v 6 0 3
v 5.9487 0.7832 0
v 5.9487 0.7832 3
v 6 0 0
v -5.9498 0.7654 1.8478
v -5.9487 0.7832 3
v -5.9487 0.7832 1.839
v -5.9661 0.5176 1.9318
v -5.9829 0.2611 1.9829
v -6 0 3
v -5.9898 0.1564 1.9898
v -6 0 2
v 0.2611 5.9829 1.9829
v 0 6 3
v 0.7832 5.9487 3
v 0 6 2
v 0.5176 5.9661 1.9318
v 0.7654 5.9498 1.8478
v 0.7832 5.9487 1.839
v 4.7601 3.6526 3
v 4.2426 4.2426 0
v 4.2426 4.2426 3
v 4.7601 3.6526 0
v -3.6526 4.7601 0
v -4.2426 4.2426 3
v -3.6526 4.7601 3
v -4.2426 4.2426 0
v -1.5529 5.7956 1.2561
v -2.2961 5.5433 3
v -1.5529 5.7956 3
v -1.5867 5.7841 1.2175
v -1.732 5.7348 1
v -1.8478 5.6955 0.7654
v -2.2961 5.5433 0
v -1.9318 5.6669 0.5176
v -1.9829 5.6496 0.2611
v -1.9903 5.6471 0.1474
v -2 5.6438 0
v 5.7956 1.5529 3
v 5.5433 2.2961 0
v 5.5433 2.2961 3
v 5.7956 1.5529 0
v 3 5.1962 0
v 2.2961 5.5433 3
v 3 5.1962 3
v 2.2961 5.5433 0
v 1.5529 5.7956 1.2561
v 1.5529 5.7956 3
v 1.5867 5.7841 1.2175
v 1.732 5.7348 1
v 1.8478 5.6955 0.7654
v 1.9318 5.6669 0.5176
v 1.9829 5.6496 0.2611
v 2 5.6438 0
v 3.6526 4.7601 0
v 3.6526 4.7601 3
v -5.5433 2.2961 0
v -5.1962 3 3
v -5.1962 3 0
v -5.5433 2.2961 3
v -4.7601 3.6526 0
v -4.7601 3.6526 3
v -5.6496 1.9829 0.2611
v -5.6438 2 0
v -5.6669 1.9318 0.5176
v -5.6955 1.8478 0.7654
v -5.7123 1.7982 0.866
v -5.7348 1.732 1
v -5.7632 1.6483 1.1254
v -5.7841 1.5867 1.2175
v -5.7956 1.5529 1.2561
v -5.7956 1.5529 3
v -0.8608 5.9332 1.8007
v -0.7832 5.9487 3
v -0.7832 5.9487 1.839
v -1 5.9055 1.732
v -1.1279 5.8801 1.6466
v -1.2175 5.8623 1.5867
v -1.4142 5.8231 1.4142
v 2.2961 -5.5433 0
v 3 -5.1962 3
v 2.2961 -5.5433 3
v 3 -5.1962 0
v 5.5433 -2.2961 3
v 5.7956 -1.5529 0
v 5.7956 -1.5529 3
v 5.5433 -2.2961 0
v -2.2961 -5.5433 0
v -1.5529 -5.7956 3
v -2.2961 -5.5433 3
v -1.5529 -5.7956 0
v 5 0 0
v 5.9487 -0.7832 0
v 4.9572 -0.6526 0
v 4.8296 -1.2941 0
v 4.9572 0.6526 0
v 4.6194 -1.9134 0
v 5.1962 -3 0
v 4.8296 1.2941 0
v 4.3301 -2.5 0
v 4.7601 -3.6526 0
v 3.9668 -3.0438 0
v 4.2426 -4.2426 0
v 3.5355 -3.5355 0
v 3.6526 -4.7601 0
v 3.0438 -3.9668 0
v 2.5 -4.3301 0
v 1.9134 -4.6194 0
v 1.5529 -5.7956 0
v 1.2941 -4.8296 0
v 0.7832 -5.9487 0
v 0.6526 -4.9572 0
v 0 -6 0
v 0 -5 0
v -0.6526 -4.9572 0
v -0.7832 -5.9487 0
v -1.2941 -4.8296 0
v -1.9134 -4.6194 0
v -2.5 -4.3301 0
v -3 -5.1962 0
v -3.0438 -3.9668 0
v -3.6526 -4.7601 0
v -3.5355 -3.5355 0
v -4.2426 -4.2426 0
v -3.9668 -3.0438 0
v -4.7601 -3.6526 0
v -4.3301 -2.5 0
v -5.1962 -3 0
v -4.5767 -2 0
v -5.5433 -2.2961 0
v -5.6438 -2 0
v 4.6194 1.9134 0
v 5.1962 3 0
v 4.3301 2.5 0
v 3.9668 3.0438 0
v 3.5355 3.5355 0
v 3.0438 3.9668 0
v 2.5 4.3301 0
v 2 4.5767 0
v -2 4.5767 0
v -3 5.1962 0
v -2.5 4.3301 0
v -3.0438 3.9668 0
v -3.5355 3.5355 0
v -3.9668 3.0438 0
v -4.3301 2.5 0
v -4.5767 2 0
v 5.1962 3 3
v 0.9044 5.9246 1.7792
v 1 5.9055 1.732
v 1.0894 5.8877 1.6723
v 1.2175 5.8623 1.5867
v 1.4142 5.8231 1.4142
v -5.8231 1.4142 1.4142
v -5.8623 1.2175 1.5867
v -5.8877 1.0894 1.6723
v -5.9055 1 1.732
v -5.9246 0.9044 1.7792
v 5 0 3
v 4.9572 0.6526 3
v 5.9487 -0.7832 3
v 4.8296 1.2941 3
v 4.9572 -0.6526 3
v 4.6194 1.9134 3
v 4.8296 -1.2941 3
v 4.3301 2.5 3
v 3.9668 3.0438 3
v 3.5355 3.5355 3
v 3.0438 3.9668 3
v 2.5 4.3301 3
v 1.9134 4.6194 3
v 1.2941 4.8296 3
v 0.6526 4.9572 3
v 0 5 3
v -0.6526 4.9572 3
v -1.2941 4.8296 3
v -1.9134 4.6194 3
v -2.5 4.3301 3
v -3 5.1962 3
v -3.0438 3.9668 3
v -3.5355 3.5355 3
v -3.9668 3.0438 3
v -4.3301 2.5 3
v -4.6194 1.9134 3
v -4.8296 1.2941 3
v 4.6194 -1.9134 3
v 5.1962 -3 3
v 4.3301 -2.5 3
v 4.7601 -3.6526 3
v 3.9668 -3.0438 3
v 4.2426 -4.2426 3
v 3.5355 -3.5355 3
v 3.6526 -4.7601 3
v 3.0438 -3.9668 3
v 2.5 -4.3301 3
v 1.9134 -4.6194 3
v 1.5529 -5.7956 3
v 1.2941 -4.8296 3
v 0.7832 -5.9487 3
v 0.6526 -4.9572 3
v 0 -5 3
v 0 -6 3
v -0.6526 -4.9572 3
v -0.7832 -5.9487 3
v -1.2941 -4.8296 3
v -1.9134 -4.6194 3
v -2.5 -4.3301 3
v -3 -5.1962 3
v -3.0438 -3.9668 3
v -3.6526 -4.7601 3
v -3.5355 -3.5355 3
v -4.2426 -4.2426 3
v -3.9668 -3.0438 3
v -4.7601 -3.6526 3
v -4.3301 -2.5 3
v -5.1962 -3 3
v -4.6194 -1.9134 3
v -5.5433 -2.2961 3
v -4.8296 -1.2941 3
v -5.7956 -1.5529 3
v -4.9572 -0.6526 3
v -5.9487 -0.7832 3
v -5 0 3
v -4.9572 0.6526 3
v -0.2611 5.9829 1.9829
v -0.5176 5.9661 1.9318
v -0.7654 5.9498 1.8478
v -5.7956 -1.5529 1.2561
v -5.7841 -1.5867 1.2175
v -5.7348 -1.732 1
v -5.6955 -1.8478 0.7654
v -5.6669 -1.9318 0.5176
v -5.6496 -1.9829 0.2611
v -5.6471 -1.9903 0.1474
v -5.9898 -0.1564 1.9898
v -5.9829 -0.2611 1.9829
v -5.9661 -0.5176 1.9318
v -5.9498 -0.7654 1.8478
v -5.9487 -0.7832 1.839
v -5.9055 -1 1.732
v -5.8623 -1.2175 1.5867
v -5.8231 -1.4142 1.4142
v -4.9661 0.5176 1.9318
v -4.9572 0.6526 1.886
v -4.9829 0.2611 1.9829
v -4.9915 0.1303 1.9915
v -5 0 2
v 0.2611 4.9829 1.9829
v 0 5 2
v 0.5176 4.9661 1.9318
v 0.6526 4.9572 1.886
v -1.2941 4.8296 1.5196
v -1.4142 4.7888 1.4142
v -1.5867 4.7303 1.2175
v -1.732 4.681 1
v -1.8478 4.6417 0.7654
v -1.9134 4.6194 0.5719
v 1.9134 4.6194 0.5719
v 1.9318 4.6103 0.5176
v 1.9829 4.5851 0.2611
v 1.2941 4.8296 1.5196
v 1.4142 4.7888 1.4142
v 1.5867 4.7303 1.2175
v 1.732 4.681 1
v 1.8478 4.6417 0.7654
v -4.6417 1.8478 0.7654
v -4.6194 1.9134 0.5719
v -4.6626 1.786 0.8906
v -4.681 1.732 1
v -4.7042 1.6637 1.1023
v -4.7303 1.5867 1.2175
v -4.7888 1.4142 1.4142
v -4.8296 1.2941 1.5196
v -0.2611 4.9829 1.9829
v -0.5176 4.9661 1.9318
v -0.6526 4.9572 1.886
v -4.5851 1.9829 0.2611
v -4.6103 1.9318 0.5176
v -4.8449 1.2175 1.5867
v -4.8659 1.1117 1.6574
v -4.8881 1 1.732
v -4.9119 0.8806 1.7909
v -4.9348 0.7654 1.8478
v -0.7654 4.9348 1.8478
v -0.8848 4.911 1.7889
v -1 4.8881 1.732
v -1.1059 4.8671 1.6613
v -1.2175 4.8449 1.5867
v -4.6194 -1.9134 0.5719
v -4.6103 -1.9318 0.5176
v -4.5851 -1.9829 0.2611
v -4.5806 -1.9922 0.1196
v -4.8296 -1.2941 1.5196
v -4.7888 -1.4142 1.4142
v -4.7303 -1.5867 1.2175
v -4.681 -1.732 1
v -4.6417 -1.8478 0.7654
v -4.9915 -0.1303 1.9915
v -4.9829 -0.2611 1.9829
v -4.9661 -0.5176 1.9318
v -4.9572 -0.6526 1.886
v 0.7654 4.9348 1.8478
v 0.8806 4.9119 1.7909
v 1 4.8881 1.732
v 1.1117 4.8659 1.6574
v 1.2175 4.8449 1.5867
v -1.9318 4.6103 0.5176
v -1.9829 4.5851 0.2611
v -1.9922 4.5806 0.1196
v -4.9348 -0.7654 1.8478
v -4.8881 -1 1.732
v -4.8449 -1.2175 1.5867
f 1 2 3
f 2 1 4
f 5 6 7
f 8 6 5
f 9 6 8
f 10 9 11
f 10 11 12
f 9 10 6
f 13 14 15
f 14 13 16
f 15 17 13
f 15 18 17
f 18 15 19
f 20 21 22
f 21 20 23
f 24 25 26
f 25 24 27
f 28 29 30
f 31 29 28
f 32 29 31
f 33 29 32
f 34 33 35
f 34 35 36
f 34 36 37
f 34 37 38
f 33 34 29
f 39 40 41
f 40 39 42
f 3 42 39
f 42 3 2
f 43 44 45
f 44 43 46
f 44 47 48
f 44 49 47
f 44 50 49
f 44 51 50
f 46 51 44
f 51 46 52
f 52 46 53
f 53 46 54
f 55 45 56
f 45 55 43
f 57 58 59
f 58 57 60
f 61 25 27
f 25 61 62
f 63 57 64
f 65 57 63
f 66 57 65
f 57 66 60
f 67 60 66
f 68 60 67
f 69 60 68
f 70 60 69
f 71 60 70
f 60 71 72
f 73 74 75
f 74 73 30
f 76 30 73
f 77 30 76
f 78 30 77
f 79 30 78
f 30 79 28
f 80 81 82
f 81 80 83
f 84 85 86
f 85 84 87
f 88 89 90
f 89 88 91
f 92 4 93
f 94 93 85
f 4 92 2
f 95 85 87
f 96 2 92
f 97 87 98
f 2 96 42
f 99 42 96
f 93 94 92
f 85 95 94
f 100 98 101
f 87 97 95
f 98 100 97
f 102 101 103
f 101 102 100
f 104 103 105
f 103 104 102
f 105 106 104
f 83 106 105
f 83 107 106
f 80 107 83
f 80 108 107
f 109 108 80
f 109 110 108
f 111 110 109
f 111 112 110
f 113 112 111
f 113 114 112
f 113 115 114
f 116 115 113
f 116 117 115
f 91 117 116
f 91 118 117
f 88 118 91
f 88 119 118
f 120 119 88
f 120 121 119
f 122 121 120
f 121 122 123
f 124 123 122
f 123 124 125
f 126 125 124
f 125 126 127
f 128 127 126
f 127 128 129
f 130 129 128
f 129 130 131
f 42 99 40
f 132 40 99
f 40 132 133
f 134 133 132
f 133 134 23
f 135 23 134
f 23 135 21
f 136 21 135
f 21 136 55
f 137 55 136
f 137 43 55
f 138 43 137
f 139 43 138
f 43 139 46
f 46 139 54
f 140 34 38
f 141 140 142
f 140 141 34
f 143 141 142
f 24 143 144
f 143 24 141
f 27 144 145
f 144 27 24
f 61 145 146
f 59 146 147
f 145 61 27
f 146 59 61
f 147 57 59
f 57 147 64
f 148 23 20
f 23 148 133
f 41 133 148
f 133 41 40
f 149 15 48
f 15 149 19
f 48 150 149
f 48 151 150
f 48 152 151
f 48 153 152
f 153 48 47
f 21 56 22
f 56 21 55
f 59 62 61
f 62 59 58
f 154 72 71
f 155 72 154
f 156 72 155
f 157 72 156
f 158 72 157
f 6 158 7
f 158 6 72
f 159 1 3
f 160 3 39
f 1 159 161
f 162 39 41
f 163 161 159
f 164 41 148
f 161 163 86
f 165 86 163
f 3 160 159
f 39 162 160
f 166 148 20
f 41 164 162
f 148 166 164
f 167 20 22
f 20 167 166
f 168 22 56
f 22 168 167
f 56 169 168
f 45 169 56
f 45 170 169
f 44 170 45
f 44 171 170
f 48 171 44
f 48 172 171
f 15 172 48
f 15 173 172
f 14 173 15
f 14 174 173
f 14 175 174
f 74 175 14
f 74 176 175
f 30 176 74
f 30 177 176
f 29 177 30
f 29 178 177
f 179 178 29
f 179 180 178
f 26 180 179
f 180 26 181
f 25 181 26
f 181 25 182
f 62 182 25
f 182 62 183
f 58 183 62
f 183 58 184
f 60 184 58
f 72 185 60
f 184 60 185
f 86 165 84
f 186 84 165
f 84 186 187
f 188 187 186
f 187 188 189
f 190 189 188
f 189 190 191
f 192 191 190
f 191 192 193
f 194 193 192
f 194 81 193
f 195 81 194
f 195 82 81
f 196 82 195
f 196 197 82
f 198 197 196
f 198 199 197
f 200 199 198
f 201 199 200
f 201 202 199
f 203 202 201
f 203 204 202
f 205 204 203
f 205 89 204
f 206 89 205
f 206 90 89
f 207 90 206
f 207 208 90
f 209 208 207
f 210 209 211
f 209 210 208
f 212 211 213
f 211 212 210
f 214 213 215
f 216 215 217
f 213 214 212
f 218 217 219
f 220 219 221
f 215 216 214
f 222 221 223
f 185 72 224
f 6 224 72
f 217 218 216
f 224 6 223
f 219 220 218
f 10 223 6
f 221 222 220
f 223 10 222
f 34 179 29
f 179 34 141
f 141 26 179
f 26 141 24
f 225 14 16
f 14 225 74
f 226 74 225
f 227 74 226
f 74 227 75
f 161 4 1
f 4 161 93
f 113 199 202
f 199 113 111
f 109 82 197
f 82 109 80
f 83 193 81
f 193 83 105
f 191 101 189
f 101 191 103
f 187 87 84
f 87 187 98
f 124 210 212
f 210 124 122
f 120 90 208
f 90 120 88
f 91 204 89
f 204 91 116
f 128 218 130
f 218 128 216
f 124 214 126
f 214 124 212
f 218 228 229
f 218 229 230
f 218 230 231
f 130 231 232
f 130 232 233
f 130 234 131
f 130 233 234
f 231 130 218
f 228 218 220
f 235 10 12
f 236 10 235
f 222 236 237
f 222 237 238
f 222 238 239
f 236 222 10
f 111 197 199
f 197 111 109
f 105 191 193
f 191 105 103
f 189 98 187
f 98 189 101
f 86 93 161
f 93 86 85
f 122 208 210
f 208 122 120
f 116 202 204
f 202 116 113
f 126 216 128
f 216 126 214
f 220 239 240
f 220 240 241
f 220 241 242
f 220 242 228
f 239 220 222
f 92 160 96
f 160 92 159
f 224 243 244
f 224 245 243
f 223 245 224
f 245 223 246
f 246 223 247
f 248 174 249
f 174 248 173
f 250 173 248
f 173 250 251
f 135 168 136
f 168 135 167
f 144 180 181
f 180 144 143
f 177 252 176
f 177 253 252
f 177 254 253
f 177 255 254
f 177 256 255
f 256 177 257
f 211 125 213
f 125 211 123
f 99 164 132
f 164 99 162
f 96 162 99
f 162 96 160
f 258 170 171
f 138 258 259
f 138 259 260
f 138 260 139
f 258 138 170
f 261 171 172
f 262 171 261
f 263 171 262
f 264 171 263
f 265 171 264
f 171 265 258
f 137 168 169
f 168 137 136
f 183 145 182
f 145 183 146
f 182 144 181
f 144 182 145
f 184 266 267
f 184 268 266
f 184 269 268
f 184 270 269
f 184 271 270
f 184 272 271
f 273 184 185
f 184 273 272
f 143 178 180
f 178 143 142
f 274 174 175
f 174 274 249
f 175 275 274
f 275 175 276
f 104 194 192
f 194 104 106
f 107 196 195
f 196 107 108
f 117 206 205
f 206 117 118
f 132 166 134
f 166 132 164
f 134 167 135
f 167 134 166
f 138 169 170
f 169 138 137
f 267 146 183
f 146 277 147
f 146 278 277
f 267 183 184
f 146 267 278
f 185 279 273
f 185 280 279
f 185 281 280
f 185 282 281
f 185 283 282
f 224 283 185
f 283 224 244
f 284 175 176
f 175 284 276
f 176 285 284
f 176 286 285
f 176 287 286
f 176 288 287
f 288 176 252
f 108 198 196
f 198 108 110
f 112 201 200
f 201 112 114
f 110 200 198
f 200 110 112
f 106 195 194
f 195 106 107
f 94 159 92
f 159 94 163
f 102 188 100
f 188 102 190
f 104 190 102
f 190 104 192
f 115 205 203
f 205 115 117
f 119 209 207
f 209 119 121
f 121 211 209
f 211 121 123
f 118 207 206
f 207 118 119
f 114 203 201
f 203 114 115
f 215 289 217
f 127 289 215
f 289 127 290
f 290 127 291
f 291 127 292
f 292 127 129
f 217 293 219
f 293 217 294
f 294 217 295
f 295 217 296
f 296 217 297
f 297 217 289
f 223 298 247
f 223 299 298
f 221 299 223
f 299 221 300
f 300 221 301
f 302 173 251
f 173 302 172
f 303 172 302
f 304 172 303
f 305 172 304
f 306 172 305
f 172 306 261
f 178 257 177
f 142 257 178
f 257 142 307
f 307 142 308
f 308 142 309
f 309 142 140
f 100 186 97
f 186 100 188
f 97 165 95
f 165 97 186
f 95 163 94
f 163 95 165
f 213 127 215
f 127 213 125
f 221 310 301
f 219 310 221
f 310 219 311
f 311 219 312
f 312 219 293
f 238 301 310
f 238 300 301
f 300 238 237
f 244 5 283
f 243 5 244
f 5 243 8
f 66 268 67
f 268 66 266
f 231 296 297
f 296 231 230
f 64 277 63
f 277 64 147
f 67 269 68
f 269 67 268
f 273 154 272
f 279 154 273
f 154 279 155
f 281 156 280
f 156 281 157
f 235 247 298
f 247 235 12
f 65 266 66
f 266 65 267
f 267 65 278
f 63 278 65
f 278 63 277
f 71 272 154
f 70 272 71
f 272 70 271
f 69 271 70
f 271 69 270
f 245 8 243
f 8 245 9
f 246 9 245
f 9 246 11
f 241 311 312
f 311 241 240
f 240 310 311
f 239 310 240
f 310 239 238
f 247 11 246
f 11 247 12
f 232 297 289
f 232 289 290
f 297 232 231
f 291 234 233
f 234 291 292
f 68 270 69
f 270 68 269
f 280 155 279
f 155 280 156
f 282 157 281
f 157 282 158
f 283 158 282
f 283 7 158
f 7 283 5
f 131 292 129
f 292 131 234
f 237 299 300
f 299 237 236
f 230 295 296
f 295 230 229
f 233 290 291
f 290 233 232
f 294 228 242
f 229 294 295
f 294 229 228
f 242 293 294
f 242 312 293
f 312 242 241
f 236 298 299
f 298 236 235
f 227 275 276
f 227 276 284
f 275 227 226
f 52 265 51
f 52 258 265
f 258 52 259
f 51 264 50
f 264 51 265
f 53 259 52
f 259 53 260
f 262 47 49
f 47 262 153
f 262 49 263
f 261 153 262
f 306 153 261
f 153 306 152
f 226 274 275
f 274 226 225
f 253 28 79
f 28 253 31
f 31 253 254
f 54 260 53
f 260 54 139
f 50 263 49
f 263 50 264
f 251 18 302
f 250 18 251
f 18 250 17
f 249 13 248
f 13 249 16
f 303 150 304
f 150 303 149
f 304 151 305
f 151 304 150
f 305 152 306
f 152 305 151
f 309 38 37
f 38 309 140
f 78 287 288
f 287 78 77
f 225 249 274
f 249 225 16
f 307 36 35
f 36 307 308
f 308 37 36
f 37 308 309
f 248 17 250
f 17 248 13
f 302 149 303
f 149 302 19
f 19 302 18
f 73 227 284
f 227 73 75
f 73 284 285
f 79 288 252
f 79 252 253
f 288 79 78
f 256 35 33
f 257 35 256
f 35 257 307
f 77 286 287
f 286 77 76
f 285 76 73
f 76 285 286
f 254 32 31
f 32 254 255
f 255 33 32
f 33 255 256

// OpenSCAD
// file: ../build_environments.scad
// build_environments.scad: modules to build level sections
//

module pool(diameter=10.0, wall_height=2.0, step_width=3.0, connections=[])
{
    difference() {
        union() {
        difference() {
            cylinder(h=0.5,r1=diameter+step_width,r2=diameter+step_width,$fn=48);
            translate([0,0,-0.1])
                cylinder(h=0.7,r1=diameter,r2=diameter,$fn=48);
        }
        difference() {
            cylinder(h=wall_height,r1=diameter+step_width+1.0,r2=diameter+step_width+1.0,$fn=48);
            translate([0,0,-0.1])
                cylinder(h=wall_height+0.2,r1=diameter+step_width,r2=diameter+step_width,$fn=48);
        }
        }
    
        for (c = connections)
        {
            rotate([0,90,0]) {
                angle = atan2(c[1],c[0]);
                rotate([-angle,0,0]) {
                    cylinder(h=diameter+5.0,r1=c[2],r2=c[2],$fn=48);
                }
            }
        }
    }
}

module straight(length=10.0, width=2.0, dy1=0.0, dy2=0.0, dz=0.0)
{
    dims = [0, 0, 0, 0, 0, (dz/length)];
    matrix = [
        [ 1, dims[0], dims[1], 0 ],
        [ dims[2], 1, dims[4], 0 ],
        [ dims[5], dims[3], 1, 0 ],
        [ 0, 0, 0, 1 ]
    ];
    multmatrix(matrix)
    difference() {
        translate([dy1,0,0])
        union() {
            rotate([0,90,0]) {
                difference() {
                    cylinder(h=(length-dy1-dy2),r1=width+1.0,r2=width+1.0,$fn=24);
                    translate([0,0,-0.1])
                        cylinder(h=(length-dy1-dy2+0.2),r1=width,r2=width,$fn=24);
                }
                difference() {
                    cylinder(h=1.0,r1=width+2.0,r2=width+2.0,$fn=24);
                    translate([0,0,-0.1])
                        cylinder(h=1.2,r1=width,r2=width,$fn=24);
                }
                translate([0,0,(length-dy1-dy2)-1.0]) {
                    difference() {
                        cylinder(h=1.0,r1=width+2.0,r2=width+2.0,$fn=24);
                        translate([0,0,-0.1])
                            cylinder(h=1.2,r1=width,r2=width,$fn=24);
                    }
                }
            }
        }
        translate([0,0,-(2*width+4.0)/2])
            cube([3*length,3*length,2*width+4.0],center=true);
    }
}

module curve(p0=[0,0], center=[0,0], dir=1, angle=0.0, width=2.0)
{
    radius = sqrt((p0[0]-center[0])*(p0[0]-center[0]) + (p0[1]-center[1])*(p0[1]-center[1]));
    if (dir == 0) {
        difference() {
            rotate([0,0,-90])
            difference() {
                rotate_extrude(angle = angle, convexity = 10, $fn=32)
                    translate([radius, 0, 0])
                        circle(r = width+1.0,$fn=24);
                rotate([0,0,-1.0])
                    rotate_extrude(angle = angle+2.0, convexity = 10, $fn=32)
                        translate([radius, 0, 0])
                            circle(r = width,$fn=24);
            }
            translate([0,0,-(2*width+4.0)/2])
                cube([5*radius,5*radius,2*width+4.0],center=true);
        }
    }
    else {
        difference() {
            rotate([0,0,90])
            difference() {
                rotate_extrude(angle = -angle, convexity = 10, $fn=32)
                    translate([radius, 0, 0])
                        circle(r = width+1.0,$fn=24);
                rotate([0,0,1.0])
                    rotate_extrude(angle = -angle-2.0, convexity = 10, $fn=32)
                        translate([radius, 0, 0])
                            circle(r = width,$fn=24);
            }
            translate([0,0,-(2*width+4.0)/2])
                cube([5*radius,5*radius,2*width+4.0],center=true);
        }
    }

}

// test pool
//pool(diameter=12.0000, wall_height=3.0000, step_width=3.0000, connections=[[0.0000,-26.0000,2.0000], [23.6074,0.0000,2.0000]]);

// test straight, slope
//straight(length=26.0000, width=2.0000, dy1=11.8322, dy2=6.7082, dz=0.0000);
//straight(length=29.1549, width=12.0000, dy1=0.0000, dy2=0.0000, dz=-15.0000);

// test curve
//curve(p0=[23.6074, 0.0000], center=[23.6074, 5.0000], dir=0, angle=60.1011, width=2.0000);
//curve(p0=[33.6426, 12.4219], center=[37.9771, 9.9295], dir=1, angle=120.4627, width=2.0000);
// main file
use <../build_environments.scad>;
pool(diameter=5.0000, wall_height=3.0000, step_width=0.0000, connections=[[-16.0000,0.0000,2.0000], [0.0000,10.2778,2.0000]]);
